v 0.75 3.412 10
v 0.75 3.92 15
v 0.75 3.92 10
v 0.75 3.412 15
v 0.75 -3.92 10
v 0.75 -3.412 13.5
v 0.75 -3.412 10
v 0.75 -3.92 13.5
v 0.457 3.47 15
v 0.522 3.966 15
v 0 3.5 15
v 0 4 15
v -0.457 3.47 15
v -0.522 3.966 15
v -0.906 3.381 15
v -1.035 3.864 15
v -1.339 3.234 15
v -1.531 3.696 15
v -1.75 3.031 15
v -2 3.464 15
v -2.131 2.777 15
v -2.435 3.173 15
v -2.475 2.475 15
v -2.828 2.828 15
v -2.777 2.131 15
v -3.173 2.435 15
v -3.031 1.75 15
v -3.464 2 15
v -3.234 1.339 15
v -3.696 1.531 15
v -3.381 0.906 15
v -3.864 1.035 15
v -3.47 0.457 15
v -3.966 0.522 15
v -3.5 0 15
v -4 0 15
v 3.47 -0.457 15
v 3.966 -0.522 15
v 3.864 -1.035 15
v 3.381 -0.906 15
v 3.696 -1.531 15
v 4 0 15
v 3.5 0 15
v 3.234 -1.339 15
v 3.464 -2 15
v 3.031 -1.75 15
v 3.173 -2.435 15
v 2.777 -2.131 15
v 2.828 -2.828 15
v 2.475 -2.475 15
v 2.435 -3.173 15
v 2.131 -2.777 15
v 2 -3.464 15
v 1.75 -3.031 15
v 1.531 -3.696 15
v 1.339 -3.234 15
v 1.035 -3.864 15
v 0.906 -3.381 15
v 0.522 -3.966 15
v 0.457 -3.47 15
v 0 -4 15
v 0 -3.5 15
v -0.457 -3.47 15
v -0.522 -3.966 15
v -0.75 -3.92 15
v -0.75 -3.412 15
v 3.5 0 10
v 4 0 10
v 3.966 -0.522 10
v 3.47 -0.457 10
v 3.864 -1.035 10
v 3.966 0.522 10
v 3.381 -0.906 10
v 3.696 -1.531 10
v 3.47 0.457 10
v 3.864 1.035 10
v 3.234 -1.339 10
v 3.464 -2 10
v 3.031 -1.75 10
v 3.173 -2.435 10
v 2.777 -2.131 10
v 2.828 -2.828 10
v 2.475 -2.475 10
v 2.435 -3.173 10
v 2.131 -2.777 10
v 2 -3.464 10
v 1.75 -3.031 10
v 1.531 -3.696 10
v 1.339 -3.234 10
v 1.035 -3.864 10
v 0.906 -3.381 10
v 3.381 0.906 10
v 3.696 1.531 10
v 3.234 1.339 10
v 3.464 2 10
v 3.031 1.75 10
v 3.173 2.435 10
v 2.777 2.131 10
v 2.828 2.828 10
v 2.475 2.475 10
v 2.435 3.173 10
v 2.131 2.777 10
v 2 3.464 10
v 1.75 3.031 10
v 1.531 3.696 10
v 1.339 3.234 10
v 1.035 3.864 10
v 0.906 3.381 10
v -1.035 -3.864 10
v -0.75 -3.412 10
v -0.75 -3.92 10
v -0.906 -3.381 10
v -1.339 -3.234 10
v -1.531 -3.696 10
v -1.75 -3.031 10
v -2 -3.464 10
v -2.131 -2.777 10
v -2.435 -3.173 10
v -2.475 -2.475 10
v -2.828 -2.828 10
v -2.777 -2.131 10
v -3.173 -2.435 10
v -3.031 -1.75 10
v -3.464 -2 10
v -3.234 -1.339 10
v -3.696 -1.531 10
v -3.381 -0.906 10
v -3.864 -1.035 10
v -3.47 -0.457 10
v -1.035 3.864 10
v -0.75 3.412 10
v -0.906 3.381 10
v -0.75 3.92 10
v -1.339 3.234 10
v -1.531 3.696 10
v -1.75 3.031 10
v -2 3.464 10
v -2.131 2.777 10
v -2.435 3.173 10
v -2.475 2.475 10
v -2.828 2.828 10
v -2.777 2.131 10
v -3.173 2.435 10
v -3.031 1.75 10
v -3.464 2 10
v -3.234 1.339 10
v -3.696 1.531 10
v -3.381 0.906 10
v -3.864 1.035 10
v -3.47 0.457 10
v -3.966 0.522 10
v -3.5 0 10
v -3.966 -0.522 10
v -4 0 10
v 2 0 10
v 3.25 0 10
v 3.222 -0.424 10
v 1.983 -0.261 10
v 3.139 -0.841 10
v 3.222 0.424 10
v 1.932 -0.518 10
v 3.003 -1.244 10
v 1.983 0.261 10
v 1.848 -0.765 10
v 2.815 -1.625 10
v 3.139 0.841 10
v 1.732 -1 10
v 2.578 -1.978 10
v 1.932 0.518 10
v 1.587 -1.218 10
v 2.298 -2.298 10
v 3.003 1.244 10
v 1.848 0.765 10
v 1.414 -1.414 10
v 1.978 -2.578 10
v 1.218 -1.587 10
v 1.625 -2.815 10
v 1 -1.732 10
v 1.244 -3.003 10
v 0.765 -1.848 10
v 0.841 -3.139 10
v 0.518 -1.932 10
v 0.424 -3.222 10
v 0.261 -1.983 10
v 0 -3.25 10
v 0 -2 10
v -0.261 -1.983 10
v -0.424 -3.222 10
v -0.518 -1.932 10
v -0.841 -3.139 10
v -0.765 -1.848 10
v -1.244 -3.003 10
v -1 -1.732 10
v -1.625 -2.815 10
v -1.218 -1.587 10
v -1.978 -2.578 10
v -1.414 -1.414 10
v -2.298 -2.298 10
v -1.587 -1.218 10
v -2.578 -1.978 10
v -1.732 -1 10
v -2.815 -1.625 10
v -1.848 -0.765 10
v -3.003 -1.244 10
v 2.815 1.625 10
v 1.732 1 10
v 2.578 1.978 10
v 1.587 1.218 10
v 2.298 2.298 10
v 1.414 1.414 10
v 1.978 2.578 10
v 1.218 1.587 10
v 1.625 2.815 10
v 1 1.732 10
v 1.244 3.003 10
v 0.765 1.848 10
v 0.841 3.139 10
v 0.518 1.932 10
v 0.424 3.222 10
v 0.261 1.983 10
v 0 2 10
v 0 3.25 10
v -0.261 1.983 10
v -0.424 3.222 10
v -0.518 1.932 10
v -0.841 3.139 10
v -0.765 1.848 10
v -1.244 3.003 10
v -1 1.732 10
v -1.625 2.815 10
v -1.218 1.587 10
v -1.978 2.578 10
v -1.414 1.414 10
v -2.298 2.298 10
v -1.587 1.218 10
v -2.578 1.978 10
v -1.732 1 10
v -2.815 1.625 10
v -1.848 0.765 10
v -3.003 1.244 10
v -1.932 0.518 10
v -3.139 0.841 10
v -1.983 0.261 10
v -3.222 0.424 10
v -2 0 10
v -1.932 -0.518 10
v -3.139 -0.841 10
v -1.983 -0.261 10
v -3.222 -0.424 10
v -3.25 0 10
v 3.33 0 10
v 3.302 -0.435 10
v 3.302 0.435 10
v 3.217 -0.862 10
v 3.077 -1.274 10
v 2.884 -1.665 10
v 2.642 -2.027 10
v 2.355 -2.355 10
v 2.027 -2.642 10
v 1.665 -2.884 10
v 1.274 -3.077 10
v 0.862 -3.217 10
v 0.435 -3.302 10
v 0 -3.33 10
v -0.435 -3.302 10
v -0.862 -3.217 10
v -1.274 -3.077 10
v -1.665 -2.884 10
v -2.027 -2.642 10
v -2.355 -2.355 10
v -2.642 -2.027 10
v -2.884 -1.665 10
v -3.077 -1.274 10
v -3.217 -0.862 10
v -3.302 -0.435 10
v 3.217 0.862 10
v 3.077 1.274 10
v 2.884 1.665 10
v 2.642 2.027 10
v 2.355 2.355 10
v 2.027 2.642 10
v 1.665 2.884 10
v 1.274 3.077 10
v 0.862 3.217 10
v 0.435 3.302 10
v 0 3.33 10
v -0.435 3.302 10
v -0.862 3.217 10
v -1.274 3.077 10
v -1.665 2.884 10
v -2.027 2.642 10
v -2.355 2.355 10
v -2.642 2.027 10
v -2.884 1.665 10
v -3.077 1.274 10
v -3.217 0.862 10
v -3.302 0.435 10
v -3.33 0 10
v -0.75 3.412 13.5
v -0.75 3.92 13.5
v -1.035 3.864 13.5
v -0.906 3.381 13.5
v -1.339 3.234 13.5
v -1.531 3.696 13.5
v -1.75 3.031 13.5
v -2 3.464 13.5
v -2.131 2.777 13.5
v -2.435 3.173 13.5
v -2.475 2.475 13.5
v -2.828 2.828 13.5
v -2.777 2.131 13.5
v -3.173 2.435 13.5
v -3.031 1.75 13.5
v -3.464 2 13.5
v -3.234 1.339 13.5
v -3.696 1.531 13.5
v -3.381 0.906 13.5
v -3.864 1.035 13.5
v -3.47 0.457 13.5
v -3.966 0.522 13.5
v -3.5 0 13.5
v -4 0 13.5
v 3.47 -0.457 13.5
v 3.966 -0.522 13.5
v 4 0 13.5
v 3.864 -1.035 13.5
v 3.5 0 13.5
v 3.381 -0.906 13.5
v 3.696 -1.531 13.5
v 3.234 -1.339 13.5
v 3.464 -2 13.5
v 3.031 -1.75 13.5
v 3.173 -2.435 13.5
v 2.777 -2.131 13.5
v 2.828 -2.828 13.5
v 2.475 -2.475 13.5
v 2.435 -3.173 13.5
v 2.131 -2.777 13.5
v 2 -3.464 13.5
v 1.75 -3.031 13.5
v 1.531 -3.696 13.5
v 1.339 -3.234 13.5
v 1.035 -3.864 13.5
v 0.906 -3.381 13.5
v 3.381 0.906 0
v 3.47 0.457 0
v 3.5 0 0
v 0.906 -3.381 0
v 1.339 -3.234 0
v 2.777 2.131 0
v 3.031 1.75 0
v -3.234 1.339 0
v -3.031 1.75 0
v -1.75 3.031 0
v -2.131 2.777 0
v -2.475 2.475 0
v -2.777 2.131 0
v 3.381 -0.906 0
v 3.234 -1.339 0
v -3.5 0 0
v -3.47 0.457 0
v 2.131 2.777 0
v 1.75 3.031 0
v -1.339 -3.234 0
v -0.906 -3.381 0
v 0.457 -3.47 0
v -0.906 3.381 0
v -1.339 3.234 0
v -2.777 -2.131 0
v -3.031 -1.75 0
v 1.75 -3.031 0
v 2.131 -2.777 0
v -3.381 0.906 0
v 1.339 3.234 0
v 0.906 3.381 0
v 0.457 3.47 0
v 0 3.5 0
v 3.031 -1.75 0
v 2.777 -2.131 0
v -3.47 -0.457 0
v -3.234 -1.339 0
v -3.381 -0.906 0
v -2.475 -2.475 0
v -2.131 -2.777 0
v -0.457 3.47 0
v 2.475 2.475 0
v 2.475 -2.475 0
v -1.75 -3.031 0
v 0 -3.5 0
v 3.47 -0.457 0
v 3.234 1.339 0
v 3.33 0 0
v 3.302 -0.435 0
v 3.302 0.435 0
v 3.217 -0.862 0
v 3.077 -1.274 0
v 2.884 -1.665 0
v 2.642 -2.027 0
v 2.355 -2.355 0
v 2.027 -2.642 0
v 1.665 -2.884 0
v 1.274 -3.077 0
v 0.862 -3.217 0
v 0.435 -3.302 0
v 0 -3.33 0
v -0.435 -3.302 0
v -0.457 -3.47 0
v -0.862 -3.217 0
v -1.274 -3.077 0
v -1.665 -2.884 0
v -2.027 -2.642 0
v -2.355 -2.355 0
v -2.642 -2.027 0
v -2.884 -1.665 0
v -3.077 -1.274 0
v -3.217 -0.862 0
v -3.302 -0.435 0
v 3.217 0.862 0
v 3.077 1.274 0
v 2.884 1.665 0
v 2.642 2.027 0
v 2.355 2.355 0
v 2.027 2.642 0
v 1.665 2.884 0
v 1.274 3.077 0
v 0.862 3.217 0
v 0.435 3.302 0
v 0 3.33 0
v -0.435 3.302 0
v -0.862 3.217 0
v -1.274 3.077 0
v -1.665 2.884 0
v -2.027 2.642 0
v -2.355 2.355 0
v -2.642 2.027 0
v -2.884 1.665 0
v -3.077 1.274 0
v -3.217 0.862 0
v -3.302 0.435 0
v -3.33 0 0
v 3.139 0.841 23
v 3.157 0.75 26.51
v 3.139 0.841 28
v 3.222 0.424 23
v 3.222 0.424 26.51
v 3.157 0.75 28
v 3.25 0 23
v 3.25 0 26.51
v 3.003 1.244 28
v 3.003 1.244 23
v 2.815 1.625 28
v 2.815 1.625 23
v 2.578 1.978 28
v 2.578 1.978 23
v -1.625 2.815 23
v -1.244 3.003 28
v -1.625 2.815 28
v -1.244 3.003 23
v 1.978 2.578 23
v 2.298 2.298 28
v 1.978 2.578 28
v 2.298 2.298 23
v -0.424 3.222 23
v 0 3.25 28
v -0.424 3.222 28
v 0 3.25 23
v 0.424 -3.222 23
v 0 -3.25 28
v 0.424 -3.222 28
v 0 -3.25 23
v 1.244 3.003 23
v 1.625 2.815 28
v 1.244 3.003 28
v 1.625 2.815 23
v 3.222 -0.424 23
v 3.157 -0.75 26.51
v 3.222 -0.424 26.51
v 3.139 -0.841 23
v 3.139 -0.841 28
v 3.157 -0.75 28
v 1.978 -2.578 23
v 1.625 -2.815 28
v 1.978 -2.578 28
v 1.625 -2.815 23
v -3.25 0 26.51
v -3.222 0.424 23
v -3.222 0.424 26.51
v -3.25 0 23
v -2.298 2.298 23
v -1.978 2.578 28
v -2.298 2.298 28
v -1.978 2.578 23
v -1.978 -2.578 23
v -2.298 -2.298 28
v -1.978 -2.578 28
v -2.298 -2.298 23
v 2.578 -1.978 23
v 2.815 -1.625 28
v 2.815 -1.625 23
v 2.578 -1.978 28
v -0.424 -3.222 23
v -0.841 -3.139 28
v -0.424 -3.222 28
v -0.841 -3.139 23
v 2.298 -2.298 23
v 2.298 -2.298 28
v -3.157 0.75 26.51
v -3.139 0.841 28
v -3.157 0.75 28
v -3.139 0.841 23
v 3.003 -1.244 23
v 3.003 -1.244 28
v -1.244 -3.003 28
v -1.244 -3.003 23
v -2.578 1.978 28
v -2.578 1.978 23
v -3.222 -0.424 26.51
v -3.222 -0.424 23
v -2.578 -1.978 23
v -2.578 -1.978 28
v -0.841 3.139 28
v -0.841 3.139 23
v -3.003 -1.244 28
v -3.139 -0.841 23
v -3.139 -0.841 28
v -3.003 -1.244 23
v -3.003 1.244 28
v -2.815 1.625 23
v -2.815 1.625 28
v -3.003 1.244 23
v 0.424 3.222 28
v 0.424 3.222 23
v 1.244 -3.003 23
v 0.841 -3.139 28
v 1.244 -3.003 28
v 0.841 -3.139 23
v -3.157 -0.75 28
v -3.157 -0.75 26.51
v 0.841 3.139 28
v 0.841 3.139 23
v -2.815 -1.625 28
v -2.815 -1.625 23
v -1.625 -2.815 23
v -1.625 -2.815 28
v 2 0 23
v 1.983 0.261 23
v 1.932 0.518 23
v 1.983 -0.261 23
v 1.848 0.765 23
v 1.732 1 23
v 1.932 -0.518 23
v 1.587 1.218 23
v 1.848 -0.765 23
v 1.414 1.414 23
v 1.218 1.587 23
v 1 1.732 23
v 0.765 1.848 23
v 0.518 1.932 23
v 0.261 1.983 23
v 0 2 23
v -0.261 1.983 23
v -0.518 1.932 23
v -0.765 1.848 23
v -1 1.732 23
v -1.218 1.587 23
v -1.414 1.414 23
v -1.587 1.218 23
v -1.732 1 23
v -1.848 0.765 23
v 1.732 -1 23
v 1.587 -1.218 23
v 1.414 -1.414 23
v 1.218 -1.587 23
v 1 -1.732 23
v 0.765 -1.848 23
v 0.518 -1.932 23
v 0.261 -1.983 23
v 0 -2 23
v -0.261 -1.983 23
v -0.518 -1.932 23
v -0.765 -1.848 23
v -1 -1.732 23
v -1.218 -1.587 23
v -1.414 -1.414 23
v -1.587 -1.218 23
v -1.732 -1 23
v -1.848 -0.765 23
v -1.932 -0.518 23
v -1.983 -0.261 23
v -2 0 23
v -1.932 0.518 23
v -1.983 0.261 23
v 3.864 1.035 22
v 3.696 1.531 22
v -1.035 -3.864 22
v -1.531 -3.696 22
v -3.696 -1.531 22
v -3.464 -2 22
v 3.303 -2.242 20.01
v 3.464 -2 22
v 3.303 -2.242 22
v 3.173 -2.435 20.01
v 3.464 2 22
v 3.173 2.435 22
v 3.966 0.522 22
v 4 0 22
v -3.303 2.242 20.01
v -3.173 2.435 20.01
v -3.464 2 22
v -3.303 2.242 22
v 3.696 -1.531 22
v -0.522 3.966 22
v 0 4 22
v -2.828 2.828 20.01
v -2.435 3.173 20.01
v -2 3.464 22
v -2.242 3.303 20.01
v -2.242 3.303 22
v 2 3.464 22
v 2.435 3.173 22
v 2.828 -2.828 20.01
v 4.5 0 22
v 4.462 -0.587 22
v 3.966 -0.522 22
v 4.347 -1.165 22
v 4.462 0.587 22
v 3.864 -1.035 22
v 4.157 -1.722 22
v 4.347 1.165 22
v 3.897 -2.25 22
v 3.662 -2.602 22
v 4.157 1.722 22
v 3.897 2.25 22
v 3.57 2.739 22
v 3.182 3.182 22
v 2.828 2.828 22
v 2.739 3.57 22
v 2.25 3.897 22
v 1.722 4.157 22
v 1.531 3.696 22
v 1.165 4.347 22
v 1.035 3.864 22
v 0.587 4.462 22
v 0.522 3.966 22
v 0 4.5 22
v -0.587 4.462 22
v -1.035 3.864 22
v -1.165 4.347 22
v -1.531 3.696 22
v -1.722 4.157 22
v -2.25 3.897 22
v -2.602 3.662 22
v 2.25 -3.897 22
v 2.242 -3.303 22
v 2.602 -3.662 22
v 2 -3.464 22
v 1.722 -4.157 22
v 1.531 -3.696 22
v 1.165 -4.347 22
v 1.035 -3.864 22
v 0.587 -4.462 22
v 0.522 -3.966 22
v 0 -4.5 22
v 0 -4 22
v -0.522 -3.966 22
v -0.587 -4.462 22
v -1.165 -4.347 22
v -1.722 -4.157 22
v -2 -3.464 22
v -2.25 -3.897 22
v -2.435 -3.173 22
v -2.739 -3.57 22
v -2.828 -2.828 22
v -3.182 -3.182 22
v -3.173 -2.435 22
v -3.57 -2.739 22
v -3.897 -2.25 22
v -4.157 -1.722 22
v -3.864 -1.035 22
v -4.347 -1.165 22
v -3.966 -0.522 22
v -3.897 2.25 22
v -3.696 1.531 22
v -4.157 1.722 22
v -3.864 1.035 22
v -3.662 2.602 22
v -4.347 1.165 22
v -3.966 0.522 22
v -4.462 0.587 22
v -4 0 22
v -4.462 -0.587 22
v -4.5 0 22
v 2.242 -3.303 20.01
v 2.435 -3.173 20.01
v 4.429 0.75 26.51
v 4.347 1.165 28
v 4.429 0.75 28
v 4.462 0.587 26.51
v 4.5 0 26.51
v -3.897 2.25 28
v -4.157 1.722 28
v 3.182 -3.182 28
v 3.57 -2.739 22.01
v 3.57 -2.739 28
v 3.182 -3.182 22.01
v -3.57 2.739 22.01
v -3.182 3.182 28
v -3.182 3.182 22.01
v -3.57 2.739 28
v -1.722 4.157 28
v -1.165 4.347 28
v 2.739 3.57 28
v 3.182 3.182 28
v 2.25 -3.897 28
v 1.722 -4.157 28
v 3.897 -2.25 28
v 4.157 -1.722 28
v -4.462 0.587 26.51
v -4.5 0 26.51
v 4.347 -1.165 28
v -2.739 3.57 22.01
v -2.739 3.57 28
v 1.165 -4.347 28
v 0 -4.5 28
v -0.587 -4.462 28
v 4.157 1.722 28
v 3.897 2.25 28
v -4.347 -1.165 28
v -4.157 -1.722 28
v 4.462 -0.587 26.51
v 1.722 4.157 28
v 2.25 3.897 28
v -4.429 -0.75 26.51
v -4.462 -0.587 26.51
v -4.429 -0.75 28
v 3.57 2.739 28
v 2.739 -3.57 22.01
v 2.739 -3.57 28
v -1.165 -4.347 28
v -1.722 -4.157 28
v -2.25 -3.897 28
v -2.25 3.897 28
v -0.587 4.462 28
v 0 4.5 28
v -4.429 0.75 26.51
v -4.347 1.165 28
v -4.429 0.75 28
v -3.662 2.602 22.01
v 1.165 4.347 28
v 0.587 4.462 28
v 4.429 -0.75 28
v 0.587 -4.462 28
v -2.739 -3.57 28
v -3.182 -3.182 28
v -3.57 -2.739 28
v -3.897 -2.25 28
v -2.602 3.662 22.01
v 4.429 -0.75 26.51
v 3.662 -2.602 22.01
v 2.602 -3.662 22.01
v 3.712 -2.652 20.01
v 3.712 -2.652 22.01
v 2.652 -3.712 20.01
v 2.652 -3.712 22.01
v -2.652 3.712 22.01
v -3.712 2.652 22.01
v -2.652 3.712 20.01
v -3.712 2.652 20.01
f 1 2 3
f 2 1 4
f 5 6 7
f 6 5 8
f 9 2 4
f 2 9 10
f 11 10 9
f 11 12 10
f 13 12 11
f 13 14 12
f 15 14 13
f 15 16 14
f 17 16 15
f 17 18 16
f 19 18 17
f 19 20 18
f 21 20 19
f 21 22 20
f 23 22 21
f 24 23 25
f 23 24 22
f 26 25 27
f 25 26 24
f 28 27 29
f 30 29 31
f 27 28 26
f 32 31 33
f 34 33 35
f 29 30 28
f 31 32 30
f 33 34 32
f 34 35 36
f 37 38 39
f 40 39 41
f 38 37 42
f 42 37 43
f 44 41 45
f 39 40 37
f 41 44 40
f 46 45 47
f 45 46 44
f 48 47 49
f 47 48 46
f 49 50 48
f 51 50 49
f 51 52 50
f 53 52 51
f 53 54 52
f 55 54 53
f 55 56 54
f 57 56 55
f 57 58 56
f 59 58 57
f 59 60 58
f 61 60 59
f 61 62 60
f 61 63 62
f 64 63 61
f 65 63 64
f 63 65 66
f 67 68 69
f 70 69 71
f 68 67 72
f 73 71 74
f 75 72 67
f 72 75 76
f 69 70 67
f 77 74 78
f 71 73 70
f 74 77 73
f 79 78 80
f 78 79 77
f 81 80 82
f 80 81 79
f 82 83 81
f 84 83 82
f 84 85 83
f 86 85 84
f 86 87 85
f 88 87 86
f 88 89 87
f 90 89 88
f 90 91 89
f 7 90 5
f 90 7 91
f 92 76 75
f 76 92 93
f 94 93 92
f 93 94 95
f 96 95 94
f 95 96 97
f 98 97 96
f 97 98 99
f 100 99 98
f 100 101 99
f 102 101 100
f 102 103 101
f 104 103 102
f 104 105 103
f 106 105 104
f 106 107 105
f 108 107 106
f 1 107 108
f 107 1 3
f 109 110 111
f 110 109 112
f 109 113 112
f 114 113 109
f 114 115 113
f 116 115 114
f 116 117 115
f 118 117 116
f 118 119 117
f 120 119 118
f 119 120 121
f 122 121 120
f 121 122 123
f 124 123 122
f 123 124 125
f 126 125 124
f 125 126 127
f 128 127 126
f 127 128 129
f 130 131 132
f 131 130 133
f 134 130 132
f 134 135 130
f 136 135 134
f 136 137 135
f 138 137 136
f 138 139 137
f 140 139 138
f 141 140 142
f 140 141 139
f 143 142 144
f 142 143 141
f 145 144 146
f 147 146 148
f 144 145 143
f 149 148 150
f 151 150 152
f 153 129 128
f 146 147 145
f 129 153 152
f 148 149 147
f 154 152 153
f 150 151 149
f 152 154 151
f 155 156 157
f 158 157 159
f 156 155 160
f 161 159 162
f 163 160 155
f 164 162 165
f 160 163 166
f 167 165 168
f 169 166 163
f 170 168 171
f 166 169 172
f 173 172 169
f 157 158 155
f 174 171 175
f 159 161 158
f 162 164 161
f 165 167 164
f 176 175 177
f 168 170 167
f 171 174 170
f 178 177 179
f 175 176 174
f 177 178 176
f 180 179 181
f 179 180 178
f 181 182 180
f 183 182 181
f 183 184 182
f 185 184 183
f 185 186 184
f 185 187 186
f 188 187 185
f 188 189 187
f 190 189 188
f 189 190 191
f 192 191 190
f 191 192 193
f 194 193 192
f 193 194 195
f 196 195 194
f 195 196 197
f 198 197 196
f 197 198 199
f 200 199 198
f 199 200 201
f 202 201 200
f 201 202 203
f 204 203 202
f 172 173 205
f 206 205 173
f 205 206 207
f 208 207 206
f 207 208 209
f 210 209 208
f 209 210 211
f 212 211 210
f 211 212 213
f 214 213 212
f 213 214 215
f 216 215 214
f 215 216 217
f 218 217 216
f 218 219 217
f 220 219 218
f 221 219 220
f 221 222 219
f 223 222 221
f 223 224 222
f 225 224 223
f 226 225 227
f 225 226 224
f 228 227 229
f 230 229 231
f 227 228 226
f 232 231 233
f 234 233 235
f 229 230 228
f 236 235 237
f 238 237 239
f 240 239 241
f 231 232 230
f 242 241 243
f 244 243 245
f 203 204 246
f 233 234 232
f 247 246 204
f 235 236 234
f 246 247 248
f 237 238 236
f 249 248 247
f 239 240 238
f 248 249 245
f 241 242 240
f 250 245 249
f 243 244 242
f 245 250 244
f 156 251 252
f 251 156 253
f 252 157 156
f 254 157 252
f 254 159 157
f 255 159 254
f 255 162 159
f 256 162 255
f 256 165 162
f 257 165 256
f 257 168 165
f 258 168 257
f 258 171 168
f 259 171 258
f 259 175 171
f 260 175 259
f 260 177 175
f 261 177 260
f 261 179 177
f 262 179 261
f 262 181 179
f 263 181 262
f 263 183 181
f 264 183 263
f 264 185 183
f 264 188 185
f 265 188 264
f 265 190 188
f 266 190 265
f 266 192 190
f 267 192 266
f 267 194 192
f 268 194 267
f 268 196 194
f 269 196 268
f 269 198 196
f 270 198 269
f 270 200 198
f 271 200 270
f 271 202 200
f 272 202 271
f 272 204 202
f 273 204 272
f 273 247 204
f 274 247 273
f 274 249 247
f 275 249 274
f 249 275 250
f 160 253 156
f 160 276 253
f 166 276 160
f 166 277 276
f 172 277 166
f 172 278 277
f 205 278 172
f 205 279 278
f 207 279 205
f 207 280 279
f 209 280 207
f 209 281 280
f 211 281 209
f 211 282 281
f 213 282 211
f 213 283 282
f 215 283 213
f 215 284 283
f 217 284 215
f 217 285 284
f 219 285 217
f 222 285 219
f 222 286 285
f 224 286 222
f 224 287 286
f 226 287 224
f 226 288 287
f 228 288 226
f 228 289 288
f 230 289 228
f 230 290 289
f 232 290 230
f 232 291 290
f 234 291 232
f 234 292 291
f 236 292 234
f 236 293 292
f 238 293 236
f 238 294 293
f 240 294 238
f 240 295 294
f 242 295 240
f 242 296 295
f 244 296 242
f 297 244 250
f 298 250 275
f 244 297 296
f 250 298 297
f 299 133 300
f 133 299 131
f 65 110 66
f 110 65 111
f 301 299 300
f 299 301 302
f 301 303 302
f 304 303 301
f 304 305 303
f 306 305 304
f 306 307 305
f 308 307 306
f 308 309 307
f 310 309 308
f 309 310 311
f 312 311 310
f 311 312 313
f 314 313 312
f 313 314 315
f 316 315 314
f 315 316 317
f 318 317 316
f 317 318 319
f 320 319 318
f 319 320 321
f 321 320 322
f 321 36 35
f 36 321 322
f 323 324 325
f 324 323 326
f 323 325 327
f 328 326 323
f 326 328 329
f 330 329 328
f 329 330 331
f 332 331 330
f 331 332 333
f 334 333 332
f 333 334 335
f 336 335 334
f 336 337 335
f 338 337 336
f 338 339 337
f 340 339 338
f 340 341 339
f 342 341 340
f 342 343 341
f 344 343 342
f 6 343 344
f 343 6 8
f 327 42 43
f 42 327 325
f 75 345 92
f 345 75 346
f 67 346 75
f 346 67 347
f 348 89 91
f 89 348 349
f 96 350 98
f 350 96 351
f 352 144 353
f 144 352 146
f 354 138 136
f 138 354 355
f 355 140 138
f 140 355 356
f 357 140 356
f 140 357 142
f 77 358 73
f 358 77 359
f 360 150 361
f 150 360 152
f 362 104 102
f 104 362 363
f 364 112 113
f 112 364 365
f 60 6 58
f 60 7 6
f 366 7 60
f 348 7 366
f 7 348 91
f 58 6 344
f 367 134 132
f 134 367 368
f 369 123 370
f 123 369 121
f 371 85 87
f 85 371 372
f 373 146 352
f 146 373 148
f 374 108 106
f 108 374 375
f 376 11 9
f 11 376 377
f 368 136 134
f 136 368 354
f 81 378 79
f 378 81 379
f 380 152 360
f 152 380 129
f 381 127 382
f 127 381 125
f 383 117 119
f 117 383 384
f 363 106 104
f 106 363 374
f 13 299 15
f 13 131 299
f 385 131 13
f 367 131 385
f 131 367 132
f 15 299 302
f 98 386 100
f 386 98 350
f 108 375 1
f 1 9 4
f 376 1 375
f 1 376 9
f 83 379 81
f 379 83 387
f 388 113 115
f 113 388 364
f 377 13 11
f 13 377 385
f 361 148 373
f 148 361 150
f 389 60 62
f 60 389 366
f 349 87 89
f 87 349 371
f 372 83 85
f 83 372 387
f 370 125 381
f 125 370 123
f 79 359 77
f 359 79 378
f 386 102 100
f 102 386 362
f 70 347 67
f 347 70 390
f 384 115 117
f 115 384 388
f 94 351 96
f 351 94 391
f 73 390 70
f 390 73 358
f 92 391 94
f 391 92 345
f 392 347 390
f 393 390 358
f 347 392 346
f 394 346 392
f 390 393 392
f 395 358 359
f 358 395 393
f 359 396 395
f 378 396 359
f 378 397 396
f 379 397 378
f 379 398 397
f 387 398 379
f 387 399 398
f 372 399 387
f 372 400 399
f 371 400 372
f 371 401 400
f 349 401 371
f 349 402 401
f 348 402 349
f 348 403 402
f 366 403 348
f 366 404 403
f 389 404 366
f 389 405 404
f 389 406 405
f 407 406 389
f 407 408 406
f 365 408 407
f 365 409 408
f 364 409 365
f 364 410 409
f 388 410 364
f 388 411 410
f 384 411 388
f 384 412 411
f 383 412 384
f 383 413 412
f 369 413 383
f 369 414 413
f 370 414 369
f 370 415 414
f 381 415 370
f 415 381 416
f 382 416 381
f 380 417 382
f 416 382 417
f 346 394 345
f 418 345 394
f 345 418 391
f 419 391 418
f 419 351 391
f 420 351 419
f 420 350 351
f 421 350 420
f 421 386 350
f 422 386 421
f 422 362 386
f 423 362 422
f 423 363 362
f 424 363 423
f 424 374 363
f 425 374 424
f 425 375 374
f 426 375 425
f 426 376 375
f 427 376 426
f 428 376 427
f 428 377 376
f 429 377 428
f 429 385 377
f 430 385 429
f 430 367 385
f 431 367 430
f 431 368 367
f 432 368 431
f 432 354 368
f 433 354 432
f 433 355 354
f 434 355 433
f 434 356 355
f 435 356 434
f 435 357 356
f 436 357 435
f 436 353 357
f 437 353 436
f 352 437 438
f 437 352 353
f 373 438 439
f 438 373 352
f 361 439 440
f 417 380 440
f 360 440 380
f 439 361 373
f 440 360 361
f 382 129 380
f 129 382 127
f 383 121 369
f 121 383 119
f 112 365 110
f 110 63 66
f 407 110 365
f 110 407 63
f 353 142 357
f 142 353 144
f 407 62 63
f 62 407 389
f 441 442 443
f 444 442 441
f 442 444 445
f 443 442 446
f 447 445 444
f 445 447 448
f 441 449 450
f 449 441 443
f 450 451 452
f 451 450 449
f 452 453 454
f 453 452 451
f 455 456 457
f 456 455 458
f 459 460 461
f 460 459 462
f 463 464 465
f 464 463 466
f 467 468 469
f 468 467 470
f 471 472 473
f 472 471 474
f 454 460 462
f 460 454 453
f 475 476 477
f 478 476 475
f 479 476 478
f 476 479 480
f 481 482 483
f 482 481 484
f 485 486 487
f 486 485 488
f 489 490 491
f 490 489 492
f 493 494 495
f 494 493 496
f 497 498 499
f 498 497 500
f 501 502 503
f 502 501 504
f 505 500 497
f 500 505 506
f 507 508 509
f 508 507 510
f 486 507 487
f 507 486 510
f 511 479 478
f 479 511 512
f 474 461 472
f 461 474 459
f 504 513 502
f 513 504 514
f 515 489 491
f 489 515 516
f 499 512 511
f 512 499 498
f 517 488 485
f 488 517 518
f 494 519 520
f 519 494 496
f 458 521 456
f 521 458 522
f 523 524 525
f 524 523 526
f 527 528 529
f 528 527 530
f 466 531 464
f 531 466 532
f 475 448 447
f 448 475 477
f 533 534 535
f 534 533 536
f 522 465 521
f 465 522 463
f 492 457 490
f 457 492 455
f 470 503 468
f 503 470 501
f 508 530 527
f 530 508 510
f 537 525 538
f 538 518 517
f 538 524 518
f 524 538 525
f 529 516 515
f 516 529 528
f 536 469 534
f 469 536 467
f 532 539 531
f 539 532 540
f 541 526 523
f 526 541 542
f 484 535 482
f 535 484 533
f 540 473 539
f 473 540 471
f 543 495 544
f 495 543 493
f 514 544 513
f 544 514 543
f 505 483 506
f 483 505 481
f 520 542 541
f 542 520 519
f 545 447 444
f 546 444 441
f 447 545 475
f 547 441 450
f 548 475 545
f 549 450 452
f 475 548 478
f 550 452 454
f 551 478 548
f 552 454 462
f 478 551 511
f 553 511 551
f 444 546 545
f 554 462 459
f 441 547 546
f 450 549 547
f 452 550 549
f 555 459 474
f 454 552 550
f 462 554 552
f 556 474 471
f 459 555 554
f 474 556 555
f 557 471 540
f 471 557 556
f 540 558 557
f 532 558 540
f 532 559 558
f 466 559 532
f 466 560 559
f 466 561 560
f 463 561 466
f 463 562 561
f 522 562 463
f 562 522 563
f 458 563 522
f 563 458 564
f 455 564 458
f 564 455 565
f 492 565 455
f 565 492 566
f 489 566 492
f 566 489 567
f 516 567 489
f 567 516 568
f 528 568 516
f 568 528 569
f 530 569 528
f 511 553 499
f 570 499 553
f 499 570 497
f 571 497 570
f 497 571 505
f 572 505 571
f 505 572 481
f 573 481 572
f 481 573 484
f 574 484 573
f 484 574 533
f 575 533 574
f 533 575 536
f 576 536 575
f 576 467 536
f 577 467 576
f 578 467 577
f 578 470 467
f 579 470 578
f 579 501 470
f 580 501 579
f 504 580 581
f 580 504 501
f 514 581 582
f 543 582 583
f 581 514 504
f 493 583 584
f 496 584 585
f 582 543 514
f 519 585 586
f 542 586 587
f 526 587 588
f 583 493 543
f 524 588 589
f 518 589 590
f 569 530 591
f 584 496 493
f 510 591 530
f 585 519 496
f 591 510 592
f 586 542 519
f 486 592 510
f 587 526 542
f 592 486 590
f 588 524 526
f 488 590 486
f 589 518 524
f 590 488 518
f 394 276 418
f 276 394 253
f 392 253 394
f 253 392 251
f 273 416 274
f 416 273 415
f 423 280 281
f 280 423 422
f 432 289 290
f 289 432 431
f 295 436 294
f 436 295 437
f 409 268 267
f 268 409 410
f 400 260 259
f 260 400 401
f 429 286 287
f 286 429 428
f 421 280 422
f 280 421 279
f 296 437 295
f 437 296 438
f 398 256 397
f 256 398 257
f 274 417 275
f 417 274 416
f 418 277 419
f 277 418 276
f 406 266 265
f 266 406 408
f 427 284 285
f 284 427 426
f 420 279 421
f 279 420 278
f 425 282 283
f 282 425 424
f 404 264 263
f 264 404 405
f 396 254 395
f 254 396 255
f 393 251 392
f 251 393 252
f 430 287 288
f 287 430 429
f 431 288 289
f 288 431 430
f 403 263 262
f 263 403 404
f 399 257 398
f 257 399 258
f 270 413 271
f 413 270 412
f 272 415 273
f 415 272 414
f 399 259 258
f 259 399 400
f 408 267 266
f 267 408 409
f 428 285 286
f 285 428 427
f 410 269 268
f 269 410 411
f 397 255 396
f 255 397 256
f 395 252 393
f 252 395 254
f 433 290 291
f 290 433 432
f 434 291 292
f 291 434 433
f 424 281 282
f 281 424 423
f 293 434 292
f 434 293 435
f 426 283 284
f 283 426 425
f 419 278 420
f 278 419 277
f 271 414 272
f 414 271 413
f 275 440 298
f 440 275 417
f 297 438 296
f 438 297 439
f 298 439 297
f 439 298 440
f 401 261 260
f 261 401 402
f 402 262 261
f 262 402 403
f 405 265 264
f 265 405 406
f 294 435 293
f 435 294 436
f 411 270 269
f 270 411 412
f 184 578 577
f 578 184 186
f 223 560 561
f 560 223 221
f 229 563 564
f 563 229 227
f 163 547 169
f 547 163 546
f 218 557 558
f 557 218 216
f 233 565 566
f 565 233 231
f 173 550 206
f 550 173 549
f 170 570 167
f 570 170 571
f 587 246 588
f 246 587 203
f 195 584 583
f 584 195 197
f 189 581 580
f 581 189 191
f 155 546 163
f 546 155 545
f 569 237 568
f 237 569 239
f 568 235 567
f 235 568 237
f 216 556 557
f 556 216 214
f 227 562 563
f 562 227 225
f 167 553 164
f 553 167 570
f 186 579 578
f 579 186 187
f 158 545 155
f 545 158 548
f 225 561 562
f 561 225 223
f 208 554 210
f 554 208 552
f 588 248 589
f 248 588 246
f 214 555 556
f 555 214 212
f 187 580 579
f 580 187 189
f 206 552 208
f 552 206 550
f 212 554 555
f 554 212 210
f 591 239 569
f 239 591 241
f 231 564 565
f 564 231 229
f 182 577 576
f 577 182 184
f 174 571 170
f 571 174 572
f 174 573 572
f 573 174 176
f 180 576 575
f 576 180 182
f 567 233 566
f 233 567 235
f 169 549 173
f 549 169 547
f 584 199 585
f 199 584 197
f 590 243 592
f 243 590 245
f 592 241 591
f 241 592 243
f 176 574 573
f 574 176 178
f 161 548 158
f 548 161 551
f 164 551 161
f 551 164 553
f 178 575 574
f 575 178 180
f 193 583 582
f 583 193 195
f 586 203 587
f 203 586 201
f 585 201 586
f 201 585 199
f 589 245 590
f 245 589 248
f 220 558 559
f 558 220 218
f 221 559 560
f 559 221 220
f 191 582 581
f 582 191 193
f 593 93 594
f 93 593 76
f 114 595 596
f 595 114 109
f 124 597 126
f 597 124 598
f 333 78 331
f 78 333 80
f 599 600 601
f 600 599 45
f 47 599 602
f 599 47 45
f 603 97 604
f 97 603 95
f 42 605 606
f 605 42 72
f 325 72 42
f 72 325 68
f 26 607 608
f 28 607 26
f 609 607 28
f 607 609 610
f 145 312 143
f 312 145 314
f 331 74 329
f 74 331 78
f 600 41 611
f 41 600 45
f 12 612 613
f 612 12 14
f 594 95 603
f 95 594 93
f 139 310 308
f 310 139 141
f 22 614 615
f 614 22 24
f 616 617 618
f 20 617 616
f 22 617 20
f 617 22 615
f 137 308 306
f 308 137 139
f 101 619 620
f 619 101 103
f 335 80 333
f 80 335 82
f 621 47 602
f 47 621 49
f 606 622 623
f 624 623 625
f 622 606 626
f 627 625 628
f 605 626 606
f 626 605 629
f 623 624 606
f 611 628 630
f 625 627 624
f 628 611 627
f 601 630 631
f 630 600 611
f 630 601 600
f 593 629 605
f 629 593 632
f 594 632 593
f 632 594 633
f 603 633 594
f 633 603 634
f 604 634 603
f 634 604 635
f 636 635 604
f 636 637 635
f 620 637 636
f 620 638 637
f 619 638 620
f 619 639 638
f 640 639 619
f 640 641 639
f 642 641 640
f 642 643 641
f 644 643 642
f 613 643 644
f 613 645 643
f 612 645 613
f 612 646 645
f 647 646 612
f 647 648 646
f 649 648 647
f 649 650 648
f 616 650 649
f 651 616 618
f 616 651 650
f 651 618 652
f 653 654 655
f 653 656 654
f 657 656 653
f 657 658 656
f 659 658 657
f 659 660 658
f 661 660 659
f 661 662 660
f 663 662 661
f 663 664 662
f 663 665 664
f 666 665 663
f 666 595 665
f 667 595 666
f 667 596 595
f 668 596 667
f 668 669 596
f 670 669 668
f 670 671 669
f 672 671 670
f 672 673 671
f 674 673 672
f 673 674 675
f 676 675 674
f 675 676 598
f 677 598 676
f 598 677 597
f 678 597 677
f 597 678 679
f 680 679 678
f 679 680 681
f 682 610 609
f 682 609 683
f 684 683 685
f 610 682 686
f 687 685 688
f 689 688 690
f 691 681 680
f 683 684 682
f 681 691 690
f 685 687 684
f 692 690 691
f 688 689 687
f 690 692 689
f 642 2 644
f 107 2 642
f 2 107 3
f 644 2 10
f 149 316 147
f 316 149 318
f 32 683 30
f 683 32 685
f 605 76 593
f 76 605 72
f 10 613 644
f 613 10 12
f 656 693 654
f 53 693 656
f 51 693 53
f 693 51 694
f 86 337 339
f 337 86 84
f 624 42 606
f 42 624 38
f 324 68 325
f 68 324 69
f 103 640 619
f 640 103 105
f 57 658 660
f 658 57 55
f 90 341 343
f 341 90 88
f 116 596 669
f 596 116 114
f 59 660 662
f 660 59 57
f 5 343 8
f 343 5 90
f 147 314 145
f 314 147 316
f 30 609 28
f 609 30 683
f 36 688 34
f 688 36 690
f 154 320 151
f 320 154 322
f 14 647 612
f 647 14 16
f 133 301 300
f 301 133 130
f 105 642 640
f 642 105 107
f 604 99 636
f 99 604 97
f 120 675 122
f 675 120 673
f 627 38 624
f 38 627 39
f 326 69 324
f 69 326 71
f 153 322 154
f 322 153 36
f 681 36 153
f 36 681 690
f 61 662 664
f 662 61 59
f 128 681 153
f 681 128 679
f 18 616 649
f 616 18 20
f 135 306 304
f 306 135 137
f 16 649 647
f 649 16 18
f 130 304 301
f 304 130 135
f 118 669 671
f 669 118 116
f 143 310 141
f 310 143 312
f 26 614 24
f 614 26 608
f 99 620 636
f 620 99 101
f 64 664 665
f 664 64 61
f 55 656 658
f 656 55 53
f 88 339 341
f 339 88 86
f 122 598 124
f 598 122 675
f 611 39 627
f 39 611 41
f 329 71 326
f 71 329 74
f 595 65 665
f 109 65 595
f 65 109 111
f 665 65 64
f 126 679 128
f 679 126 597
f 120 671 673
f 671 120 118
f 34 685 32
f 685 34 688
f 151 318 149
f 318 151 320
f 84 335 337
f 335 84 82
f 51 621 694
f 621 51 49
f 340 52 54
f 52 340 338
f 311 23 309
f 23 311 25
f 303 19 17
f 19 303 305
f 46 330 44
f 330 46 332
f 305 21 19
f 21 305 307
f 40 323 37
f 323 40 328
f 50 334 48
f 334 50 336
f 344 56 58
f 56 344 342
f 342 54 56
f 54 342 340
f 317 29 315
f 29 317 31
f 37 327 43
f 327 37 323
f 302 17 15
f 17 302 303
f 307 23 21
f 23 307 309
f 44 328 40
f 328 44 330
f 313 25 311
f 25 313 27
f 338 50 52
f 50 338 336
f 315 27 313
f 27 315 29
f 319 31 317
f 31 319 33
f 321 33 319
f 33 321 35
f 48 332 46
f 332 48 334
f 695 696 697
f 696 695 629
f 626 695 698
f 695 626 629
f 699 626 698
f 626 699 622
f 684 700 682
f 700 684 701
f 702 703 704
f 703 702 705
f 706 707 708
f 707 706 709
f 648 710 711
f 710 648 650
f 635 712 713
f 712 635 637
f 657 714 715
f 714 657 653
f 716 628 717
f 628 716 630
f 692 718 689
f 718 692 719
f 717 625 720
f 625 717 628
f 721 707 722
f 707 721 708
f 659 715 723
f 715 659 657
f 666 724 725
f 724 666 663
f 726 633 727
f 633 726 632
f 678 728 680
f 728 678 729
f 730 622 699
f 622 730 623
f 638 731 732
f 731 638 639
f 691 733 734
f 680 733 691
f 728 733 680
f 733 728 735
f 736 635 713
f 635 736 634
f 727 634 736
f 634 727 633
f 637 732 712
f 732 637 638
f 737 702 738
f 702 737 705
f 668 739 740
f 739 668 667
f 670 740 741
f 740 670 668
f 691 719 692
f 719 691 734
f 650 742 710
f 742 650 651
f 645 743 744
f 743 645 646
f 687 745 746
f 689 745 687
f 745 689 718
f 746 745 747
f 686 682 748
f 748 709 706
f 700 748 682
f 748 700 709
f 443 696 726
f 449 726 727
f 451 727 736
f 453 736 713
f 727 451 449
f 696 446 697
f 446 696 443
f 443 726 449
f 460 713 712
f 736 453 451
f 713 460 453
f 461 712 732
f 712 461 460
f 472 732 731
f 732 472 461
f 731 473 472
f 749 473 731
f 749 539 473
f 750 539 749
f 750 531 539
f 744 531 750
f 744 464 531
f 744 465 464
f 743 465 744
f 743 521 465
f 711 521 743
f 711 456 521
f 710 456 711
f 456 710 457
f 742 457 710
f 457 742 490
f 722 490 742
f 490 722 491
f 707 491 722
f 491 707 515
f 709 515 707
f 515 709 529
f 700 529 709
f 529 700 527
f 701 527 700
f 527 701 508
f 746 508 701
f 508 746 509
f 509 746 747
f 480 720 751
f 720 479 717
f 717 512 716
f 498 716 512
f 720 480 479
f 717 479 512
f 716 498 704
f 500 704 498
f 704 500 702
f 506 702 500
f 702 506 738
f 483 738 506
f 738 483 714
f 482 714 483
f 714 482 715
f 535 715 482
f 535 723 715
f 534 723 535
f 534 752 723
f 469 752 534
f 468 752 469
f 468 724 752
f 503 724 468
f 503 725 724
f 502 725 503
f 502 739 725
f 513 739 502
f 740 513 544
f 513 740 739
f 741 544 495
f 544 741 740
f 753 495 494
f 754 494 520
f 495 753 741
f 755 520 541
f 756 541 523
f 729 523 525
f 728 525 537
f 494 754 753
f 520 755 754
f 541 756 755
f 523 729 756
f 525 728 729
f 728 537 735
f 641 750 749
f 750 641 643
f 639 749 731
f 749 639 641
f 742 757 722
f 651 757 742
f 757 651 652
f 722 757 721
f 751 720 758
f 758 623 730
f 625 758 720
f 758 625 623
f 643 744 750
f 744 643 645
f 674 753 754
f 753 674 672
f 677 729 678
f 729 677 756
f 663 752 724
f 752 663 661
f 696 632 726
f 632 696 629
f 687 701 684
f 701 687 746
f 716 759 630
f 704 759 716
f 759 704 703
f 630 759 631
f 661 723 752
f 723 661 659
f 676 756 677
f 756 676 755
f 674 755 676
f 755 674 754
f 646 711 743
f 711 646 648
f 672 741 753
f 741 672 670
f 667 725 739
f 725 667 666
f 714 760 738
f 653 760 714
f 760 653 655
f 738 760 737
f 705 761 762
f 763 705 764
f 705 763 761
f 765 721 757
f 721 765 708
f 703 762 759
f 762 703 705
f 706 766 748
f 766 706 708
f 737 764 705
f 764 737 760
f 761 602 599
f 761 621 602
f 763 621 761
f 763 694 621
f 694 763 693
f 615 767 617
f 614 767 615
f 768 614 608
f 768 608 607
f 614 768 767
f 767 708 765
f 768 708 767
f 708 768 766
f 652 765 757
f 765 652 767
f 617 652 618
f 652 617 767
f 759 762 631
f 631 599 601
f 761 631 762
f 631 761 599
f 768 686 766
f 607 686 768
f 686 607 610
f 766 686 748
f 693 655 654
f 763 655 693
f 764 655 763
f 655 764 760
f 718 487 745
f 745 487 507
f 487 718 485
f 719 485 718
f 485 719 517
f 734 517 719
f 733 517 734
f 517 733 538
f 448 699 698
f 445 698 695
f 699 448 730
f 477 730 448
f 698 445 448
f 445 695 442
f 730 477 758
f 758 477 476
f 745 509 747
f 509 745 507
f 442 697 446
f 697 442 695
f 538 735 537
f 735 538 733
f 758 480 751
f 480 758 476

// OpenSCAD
$fn=48;
fuse_d=6.5;
fuse_h=31.75;
banana_d=4;

body_front_d=9; // Measured
body_front_h=6; // Measured

// Under body front
rot_stop_w=1.5; // Measured
rot_stop_depth=2; // Measured
rot_offset=-45; //eyballed

body_mid_d=8; // Measured
body_mid_h=12; // Measured
body_mid_raise=10; // Measured

lock_horz=6; //Kinda measuerd
lock_vert=5; //Kinda measuerd
lock_channel=1.5; //Kinda measuerd

jack_d=6.5; //measured
jack_h=15;
jack_depth=20; // Unknown

split_w=1.5; // Measured
split_depth=1.5; // Measured


total_h=28.2; // Measured

metal_fuse_d=7;
metal_fuse_inner=6.66;
metal_fuse_h=body_mid_raise; // Measured
metal_fuse_depth=8.75; // Measured
metal_jack_inset=5.2; // Measured


module fuse()
{
    cylinder(fuse_h,fuse_d/2,fuse_d/2);
}

module jack()
{
    cylinder(jack_h,jack_d/2,jack_d/2);
}
module plastic()
{
    difference()
    {   
        union(){
        //Body Front
        translate([0,0,body_mid_raise+body_mid_h])cylinder(body_front_h,body_front_d/2,body_front_d/2);
        
        //Rotation stop tab    
            rotate([0,0,rot_offset])
            translate([-body_front_d/2,-rot_stop_w/2,+body_mid_raise+body_mid_h-rot_stop_depth+0.01])
                cube([body_front_d,rot_stop_w,rot_stop_depth]);
        union(){
        // Body mid with lock
            difference(){
        translate([0,0,body_mid_raise])cylinder(body_mid_h,body_mid_d/2,body_mid_d/2);

        union(){
            translate([-lock_channel/2,-500,body_mid_raise])
                cube([lock_channel,1000,lock_vert]);
            translate([-lock_channel/2-lock_horz,0,body_mid_raise+lock_vert-lock_channel])
                cube([lock_horz,1000,lock_channel]);
            rotate([0,0,180])
            translate([-lock_channel/2-lock_horz,0,body_mid_raise+lock_vert-lock_channel])
                cube([lock_horz,1000,lock_channel]);
        }
            }
            
        // Body mid with lock
        translate([0,0,body_mid_raise])cylinder(body_mid_h,(body_mid_d-1)/2,(body_mid_d-1)/2);
        }
        }
        union()
        {
            translate([0,0,body_front_h+body_mid_raise+body_mid_h+jack_h-jack_depth]) jack();
            
            translate([-500,-split_w/2,body_front_h+body_mid_raise+body_mid_h-split_depth+0.01])
                cube([1000,split_w,split_depth]);
            fuse();
        }
    }
}


module metal()
{
difference()
{   
    union()
    {
    cylinder(metal_fuse_h,metal_fuse_d/2,metal_fuse_d/2);
    cylinder(total_h-metal_jack_inset,jack_d/2,jack_d/2);
    }
    cylinder(metal_fuse_h,metal_fuse_inner/2,metal_fuse_inner/2);
    cylinder(1000,banana_d/2,banana_d/2);
}
}
metal();
plastic();
